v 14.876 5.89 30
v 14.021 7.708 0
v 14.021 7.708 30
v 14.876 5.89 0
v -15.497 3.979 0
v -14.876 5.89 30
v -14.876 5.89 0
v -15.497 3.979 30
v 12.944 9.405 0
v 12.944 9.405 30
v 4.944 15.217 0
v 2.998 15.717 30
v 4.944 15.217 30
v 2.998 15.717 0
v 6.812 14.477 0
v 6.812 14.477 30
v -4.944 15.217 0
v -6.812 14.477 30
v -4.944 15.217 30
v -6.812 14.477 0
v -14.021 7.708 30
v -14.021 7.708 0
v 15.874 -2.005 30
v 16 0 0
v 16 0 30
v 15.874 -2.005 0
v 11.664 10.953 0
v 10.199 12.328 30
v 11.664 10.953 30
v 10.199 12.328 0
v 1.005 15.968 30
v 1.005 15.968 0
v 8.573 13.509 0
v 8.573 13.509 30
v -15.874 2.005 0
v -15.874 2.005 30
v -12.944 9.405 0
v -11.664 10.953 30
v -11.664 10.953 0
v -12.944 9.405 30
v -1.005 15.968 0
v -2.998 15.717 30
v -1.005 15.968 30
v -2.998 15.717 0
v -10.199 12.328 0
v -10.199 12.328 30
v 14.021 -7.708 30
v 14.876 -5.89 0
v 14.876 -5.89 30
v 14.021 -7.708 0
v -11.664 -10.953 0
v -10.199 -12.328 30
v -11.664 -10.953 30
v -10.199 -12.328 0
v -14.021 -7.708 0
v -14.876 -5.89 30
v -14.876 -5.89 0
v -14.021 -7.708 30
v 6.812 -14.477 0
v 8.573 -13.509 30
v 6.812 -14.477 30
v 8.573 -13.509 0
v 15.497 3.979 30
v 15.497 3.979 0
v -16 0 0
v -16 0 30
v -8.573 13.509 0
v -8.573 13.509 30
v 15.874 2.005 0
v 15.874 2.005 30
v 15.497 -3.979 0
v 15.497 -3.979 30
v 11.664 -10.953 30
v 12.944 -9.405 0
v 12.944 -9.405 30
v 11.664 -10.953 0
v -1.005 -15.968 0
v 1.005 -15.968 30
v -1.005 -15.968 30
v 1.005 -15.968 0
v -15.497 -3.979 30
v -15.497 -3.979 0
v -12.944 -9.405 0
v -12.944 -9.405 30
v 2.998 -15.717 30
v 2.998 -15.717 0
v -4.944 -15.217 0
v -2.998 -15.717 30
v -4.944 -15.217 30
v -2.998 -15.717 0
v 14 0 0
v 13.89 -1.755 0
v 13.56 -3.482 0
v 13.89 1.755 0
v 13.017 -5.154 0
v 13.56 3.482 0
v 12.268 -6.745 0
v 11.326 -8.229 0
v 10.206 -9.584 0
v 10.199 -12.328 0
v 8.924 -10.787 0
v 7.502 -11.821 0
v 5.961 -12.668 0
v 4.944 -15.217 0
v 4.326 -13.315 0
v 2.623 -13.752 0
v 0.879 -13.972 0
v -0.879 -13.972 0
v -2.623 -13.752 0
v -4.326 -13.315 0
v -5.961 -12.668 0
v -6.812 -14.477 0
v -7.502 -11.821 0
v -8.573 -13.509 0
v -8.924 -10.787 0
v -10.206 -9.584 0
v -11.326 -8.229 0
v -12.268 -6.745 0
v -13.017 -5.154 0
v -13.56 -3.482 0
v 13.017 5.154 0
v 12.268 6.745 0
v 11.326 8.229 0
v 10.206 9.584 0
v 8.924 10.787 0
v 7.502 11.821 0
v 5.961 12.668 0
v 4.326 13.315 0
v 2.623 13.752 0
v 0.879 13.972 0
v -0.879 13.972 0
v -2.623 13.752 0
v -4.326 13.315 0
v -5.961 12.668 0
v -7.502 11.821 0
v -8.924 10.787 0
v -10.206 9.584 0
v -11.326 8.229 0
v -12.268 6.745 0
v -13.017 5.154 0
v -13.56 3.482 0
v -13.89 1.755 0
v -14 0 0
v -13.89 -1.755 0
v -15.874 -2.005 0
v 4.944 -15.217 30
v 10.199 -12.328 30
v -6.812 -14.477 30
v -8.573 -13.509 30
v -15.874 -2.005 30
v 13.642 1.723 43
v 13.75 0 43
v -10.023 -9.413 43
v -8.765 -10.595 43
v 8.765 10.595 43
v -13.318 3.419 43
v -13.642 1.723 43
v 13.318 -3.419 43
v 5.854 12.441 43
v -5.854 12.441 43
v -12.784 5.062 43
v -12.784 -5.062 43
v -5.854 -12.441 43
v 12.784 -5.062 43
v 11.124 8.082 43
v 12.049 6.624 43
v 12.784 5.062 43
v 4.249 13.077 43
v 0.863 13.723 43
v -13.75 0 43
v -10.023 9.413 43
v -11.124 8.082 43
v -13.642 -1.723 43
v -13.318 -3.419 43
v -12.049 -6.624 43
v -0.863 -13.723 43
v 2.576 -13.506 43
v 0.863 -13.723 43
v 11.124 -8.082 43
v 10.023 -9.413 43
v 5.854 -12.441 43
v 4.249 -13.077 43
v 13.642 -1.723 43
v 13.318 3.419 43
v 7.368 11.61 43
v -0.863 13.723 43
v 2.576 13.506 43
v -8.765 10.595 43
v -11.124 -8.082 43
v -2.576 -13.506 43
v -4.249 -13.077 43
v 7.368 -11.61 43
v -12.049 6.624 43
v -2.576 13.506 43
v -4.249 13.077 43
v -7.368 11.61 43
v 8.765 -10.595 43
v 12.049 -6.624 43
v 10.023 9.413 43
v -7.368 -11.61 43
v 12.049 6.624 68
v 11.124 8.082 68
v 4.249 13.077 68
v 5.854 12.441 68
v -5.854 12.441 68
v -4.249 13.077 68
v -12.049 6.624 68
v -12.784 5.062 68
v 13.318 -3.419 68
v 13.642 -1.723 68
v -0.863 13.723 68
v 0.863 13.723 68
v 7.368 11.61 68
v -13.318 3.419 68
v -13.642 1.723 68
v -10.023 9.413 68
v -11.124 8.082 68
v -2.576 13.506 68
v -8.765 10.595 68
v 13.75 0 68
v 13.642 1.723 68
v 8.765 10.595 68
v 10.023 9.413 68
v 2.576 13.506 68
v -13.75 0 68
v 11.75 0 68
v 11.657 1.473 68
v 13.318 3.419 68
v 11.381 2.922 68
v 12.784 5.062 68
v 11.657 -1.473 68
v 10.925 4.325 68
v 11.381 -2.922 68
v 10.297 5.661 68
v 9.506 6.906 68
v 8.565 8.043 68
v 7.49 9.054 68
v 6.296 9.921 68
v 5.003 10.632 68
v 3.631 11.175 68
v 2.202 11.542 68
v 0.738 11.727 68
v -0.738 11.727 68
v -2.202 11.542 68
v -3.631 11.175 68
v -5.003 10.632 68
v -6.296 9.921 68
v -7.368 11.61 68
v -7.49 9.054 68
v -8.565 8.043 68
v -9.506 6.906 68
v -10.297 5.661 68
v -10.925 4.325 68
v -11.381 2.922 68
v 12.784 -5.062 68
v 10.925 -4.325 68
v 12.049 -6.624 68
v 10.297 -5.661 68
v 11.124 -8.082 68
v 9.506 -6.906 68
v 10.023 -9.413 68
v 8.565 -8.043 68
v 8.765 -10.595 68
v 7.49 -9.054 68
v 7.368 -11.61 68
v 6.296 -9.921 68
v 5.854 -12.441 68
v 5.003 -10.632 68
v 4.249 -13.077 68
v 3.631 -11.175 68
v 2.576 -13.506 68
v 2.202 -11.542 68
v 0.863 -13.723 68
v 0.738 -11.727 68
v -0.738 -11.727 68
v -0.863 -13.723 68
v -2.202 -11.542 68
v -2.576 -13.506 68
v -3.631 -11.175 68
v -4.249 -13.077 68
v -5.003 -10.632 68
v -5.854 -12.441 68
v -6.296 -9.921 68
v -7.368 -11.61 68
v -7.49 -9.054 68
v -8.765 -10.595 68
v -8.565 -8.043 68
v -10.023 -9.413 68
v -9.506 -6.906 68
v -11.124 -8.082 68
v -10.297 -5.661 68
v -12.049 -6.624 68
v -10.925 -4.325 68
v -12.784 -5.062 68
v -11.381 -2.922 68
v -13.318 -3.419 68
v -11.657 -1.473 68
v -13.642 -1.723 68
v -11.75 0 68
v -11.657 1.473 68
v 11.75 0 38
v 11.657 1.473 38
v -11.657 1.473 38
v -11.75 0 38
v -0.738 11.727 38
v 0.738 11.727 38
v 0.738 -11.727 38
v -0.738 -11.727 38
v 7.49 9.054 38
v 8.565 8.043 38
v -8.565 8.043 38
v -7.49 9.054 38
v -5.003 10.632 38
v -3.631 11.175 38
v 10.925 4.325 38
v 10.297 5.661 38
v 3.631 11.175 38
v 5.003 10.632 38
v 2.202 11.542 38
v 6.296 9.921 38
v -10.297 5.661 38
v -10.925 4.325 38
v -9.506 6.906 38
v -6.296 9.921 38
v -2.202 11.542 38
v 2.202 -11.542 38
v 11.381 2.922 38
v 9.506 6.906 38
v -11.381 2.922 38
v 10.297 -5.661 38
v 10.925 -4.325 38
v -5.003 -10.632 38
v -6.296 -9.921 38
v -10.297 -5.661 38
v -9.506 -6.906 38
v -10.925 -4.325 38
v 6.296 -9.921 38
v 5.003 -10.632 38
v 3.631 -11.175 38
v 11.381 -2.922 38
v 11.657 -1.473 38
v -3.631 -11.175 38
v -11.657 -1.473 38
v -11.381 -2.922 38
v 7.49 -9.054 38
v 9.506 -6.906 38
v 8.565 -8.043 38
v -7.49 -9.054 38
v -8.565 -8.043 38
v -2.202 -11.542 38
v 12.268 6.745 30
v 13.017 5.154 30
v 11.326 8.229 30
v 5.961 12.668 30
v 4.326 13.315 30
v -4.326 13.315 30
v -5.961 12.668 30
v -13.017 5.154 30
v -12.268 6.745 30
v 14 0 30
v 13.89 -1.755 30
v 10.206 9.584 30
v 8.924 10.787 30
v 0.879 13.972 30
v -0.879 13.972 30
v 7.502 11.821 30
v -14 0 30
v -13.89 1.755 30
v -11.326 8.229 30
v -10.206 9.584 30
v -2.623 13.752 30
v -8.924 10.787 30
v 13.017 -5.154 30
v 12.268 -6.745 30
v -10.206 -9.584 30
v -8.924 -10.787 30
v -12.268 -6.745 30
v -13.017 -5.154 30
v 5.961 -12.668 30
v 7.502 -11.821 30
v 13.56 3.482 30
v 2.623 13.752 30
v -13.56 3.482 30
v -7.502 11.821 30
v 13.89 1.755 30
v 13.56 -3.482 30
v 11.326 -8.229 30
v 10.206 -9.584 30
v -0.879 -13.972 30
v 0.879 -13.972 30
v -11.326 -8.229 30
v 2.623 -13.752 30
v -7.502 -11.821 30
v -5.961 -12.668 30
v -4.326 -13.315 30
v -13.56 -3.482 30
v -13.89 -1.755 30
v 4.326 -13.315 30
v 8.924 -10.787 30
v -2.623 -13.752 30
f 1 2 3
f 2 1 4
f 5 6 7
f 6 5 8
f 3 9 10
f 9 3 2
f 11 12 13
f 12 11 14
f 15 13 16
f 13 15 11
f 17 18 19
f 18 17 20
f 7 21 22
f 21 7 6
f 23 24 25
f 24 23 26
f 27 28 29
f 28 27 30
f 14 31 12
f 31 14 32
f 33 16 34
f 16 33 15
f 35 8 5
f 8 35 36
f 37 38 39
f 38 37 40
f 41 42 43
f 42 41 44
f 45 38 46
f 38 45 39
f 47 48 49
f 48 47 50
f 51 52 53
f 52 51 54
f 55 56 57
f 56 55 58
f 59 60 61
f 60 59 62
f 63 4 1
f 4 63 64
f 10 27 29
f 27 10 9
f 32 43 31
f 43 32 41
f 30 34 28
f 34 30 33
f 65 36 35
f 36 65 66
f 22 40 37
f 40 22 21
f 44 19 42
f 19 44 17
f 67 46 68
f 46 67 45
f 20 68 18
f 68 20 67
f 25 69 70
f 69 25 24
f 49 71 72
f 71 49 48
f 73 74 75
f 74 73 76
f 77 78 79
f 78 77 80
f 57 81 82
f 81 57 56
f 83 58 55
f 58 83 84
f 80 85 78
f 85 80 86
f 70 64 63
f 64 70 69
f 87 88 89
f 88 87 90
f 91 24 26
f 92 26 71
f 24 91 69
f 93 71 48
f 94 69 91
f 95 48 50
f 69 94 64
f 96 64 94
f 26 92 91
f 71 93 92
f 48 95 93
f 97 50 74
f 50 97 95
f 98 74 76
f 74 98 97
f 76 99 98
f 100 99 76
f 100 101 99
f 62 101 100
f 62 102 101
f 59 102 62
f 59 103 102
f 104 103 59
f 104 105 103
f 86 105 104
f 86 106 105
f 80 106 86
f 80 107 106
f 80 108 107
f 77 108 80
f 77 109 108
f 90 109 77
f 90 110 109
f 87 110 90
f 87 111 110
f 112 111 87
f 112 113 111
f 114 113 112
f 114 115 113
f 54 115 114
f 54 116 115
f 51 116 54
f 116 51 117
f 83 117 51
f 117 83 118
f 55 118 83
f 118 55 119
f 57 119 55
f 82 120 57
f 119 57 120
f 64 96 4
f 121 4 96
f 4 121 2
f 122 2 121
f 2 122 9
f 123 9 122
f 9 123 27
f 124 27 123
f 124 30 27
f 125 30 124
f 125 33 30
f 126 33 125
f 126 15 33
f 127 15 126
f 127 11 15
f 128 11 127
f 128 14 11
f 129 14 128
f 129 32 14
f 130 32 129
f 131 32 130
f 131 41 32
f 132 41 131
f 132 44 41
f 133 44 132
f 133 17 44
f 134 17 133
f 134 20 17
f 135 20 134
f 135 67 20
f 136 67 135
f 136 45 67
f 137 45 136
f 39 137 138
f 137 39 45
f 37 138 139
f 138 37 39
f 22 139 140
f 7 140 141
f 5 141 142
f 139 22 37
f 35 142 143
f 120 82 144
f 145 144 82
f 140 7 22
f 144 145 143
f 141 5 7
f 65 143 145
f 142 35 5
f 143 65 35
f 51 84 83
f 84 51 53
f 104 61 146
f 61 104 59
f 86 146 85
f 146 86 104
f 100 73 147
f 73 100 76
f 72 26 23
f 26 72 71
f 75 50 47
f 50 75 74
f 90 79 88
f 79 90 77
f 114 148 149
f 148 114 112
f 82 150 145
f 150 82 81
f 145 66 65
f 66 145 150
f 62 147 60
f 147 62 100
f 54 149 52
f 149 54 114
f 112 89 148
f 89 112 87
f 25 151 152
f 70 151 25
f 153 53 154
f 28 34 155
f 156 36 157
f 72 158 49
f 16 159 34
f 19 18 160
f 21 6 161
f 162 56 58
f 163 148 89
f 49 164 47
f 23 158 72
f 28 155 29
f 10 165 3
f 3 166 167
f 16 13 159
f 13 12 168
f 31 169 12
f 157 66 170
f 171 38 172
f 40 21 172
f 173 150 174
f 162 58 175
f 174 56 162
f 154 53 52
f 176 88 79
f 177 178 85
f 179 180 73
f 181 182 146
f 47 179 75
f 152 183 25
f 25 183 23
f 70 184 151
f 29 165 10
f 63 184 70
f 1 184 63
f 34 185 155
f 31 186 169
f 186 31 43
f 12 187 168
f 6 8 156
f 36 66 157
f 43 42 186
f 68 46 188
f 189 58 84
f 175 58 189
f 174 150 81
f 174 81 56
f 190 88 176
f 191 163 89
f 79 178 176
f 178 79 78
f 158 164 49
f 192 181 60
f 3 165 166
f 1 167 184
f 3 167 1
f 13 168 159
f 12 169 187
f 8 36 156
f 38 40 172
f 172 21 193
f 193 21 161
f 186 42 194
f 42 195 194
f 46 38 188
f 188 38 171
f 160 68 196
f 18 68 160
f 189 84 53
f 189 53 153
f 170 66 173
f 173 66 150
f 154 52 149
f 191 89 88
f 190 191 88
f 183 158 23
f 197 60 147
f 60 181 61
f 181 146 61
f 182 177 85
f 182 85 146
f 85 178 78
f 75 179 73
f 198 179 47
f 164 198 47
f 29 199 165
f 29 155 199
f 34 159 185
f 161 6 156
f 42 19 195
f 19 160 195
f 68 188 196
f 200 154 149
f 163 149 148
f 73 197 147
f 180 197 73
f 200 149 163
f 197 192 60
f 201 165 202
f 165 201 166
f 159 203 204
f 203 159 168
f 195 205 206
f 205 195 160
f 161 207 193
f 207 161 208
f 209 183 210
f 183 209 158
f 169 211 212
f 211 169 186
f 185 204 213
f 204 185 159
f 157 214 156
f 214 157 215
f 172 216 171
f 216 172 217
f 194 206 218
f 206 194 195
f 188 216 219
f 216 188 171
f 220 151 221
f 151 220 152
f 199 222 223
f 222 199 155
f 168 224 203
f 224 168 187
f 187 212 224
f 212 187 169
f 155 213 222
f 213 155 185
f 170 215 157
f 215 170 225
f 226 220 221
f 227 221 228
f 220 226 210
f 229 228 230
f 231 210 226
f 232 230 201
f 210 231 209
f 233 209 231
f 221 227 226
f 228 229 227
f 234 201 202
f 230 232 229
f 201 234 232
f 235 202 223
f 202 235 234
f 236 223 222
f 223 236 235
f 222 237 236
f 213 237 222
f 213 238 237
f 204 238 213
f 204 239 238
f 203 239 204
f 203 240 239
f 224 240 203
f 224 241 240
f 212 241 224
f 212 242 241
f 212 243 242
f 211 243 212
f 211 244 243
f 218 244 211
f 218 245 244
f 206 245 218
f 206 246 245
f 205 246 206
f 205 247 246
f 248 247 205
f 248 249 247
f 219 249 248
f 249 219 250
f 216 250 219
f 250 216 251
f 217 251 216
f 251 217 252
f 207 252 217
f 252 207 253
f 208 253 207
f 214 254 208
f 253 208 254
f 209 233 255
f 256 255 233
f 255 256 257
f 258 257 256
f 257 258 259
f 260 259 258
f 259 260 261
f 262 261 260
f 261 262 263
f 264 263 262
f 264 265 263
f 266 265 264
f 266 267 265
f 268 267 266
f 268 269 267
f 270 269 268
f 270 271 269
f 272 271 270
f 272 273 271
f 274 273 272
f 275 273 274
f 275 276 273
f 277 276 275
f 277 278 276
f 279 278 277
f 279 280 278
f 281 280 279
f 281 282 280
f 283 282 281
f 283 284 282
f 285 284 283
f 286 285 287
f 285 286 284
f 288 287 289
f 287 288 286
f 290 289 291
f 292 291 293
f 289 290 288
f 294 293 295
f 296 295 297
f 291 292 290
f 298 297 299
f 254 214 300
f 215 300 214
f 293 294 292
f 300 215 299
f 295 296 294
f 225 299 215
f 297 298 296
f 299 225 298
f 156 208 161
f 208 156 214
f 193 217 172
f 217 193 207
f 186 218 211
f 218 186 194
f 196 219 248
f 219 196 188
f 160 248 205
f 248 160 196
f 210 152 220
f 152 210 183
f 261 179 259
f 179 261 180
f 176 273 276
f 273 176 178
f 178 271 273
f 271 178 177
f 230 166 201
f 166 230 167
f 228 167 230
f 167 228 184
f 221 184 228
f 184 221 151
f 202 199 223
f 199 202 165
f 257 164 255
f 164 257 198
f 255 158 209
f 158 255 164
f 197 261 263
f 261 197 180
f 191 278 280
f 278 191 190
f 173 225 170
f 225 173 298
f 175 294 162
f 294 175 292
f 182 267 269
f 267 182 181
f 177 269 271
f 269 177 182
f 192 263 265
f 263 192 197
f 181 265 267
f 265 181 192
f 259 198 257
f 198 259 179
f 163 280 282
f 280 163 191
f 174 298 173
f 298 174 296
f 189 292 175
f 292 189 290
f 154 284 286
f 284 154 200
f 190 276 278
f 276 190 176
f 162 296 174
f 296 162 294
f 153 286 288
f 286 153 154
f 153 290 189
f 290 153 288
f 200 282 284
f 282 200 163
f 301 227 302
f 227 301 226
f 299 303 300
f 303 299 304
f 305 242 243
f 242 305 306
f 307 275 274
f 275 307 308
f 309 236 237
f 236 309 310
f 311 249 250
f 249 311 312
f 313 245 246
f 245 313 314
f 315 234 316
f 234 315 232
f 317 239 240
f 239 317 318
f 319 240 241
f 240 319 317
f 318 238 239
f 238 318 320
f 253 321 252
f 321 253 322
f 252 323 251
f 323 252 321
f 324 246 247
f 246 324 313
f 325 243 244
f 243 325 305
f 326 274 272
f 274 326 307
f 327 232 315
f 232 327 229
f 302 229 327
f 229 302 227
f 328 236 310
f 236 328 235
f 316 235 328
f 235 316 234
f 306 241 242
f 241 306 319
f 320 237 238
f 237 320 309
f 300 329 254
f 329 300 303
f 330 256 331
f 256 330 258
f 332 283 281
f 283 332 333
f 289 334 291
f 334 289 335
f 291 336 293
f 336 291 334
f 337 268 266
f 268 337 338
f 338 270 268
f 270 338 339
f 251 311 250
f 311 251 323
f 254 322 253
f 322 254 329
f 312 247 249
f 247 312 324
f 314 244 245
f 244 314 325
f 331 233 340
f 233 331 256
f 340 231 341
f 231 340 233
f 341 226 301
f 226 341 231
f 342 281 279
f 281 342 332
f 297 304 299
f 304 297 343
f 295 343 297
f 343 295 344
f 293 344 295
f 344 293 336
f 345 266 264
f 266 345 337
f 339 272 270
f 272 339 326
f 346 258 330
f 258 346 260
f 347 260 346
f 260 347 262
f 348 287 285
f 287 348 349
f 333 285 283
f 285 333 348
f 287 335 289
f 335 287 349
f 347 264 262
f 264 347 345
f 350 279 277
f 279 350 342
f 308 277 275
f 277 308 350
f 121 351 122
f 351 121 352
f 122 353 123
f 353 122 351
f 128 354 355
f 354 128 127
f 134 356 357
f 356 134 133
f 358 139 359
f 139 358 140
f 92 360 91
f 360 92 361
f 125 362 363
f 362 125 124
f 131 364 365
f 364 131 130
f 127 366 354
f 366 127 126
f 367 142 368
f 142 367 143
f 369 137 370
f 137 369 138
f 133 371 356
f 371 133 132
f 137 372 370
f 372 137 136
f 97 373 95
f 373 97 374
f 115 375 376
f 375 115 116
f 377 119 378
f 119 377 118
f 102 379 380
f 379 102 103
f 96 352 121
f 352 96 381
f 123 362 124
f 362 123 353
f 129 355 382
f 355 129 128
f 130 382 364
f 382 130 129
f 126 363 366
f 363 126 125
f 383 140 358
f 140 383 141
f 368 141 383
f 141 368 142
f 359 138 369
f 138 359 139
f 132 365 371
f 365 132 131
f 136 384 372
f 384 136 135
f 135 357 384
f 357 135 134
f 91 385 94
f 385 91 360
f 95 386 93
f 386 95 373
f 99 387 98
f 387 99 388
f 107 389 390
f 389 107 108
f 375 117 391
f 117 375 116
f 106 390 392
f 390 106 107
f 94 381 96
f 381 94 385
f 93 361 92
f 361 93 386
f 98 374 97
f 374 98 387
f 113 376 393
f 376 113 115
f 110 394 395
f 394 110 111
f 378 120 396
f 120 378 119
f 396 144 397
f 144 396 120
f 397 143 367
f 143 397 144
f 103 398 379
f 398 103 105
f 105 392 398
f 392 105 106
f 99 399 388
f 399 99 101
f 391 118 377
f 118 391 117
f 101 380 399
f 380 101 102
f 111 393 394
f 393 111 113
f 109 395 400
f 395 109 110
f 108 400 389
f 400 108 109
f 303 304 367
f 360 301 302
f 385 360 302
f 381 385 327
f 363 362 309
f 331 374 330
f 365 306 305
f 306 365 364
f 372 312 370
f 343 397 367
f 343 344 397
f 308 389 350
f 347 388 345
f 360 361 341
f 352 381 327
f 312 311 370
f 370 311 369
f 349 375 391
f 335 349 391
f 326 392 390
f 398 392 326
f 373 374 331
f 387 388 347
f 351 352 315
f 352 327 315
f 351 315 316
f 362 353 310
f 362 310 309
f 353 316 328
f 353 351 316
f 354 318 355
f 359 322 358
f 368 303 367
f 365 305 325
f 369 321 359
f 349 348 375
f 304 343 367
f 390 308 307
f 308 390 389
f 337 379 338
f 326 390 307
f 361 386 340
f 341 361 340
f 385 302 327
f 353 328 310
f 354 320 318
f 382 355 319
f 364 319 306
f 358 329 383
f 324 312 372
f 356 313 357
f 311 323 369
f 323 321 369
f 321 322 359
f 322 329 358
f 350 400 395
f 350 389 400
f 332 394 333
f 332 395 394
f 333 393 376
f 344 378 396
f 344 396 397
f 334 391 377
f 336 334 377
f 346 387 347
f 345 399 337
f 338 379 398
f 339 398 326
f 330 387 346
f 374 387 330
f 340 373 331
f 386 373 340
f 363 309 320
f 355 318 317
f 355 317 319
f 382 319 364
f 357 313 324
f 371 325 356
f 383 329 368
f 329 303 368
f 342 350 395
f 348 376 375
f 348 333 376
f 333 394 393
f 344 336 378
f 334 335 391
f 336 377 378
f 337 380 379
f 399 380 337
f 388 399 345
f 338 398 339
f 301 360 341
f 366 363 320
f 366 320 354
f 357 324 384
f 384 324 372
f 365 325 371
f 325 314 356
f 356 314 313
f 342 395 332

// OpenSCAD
$fn=50;

difference(){
    union(){
        cylinder(30,32/2,32/2);
        translate([0,0,30])cylinder(13,32/2,27.5/2);
        //translate([0,0,33])cylinder(8,25/2,25/2);
        //translate([0,0,41])cylinder(2,23/2,23/2);
        translate([0,0,43])cylinder(25,27.5/2,27.5/2);
    }
    cylinder(68,23.5/2,23.5/2);
    cylinder(30,28/2,28/2);
    translate([0,0,30])cylinder(8,28/2,23.5/2);
}
